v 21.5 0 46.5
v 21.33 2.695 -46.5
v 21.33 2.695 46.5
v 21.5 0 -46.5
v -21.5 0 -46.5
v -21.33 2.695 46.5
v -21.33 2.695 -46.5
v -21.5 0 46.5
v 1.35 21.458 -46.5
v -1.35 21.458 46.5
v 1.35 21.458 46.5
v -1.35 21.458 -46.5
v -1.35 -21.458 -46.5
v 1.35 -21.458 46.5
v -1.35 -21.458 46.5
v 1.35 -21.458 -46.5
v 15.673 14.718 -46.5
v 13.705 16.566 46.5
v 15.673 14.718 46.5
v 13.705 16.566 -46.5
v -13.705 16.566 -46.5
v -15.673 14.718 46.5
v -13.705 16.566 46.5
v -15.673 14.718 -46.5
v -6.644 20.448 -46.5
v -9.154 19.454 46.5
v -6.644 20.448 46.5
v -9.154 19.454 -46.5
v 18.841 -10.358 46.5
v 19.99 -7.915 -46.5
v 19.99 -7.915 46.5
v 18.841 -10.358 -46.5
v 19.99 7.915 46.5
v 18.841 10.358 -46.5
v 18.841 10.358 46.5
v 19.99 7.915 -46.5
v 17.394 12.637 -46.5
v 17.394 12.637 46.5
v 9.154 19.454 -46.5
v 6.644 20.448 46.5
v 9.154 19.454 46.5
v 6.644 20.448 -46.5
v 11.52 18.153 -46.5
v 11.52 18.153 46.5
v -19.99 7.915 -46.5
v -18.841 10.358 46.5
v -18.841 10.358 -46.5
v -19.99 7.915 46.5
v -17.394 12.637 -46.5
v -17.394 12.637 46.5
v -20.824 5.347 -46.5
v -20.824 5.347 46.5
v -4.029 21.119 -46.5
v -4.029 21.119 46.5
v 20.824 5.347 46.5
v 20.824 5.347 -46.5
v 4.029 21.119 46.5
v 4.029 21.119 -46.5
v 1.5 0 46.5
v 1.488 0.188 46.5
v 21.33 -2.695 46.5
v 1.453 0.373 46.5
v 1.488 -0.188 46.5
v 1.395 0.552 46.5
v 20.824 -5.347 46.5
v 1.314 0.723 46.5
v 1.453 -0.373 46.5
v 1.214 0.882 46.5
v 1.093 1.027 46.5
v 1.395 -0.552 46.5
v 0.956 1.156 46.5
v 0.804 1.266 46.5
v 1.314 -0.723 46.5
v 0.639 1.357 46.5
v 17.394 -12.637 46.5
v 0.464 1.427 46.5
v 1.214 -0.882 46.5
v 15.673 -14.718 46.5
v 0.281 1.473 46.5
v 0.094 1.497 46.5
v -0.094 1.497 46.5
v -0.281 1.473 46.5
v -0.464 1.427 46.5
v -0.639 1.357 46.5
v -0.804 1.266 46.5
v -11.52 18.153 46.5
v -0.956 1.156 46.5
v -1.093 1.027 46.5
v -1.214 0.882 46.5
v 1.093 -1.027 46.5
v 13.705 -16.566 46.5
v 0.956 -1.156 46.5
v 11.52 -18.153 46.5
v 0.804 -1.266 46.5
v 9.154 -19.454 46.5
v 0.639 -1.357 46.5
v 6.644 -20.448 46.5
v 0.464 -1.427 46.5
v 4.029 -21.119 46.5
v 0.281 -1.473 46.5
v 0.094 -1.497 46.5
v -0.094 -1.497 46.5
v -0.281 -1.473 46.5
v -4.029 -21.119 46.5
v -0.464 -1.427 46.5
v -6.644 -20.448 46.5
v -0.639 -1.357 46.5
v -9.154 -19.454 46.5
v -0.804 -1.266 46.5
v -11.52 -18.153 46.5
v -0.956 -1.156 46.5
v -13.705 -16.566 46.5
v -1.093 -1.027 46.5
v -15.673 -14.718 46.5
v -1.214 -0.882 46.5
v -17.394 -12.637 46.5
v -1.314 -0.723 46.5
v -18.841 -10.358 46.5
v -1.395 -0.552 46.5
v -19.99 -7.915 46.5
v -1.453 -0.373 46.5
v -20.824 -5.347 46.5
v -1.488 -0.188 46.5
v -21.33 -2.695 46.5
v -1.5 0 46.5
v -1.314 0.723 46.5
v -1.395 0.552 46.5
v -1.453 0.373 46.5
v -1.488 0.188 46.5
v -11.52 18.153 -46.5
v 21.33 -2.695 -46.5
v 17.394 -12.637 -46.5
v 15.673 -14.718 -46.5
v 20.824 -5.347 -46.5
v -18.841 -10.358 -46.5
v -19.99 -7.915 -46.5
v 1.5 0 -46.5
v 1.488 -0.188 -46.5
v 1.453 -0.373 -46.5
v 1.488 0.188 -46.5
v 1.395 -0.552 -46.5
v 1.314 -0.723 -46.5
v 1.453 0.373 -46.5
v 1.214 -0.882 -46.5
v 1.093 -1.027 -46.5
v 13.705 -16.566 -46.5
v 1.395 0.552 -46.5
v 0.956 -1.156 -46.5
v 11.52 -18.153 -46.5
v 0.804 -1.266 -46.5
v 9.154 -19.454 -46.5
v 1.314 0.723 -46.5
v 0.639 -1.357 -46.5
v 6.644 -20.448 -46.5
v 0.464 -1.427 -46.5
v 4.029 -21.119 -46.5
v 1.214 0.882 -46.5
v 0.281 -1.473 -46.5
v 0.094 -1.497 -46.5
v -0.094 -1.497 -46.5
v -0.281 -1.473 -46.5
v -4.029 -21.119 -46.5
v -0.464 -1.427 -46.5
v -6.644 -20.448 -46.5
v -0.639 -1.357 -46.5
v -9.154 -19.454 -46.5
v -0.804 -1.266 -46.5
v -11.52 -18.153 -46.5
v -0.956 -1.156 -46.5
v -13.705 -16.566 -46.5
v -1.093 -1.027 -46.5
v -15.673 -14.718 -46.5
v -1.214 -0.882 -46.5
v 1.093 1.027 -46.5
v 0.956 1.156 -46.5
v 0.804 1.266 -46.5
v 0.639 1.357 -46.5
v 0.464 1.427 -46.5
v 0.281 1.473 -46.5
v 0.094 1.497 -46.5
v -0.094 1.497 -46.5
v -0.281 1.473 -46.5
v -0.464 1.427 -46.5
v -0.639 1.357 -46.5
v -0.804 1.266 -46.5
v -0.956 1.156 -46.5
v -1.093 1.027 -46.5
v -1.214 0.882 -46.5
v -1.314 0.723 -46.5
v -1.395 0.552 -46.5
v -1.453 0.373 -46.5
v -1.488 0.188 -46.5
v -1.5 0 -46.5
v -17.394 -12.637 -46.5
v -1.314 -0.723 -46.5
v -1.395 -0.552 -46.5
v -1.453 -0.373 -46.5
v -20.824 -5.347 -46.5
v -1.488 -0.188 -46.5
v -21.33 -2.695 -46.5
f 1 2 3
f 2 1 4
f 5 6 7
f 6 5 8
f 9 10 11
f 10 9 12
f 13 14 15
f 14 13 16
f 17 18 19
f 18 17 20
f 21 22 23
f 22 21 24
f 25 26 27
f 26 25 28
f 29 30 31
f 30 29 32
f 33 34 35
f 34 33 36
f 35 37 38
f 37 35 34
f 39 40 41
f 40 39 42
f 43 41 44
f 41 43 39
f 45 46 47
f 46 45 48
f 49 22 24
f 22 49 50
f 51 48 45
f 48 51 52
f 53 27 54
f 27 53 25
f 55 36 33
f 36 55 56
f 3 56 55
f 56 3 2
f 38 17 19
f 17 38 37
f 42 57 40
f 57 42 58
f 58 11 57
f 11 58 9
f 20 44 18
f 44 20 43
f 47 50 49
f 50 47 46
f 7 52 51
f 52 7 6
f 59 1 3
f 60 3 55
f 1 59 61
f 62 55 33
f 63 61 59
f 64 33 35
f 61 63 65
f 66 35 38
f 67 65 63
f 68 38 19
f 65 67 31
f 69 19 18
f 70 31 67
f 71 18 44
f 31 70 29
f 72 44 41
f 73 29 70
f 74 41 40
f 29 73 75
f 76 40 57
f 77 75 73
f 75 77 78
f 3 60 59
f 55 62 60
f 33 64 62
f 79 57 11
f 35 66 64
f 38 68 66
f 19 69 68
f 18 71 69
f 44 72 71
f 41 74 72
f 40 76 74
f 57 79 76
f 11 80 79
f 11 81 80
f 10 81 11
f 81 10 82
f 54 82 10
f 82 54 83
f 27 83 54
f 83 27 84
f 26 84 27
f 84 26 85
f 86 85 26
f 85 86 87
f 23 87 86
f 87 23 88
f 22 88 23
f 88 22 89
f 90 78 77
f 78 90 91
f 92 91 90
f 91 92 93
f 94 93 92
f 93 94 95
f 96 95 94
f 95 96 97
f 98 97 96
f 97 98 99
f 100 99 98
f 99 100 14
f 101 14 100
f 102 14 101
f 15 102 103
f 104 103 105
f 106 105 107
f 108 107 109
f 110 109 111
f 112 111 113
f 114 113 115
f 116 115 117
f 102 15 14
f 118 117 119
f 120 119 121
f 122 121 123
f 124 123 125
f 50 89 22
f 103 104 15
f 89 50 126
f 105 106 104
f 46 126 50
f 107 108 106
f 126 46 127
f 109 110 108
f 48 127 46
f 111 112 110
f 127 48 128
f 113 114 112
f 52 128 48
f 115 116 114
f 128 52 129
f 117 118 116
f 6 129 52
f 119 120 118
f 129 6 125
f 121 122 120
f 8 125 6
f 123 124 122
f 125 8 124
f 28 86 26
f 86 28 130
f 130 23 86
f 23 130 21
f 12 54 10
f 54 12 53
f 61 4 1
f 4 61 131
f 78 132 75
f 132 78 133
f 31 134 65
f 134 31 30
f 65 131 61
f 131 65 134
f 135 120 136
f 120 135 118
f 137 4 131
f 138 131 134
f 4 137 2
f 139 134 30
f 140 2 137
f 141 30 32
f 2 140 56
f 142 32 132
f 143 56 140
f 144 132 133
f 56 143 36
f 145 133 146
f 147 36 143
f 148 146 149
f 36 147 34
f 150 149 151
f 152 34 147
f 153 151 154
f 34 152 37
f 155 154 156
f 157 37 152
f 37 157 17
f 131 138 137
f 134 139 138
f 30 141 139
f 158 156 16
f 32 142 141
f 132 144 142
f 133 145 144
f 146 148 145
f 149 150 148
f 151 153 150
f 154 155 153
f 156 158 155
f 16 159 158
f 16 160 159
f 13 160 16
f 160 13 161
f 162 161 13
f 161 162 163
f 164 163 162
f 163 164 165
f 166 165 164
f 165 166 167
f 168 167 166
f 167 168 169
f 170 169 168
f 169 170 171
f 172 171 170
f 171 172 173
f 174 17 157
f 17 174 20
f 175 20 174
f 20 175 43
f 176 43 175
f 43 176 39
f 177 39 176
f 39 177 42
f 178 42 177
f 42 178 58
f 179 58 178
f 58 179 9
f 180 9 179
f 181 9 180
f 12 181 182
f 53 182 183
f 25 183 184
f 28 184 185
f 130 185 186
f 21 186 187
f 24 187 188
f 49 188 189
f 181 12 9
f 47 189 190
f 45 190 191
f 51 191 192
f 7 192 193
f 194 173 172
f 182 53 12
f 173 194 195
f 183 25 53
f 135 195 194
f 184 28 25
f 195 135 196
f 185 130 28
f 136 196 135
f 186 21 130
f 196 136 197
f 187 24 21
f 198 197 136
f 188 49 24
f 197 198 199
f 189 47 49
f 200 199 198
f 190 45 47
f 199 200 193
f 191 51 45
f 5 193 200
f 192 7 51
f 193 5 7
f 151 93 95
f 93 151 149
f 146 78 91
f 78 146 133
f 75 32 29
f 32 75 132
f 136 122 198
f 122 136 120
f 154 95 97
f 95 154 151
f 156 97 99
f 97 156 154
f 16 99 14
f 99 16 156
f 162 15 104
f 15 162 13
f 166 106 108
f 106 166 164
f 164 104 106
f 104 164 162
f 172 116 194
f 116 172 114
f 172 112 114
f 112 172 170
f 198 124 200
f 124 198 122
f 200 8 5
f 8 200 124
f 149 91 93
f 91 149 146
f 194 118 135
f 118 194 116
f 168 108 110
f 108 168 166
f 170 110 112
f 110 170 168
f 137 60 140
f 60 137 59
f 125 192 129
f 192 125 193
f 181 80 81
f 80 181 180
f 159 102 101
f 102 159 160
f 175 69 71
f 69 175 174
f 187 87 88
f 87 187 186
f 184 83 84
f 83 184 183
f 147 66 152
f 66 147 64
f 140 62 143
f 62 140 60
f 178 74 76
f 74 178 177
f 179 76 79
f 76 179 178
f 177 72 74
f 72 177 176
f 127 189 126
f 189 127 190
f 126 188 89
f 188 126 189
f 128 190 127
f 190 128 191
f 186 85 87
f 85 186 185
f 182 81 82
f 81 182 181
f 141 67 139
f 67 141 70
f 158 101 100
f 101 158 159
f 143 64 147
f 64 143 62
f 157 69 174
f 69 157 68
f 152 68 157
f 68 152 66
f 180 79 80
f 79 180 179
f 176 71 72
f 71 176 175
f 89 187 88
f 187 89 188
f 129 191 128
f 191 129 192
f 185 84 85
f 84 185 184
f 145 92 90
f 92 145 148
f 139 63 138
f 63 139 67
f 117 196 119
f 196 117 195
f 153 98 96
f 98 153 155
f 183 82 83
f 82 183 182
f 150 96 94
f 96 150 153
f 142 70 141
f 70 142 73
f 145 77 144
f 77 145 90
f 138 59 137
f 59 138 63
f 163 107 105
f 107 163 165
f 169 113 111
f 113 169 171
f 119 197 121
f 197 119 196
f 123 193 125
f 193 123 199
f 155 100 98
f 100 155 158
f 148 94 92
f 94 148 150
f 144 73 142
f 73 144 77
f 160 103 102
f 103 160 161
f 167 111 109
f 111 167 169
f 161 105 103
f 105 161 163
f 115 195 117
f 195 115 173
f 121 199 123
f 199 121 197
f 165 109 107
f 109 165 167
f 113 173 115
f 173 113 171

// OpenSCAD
$fn = 50;


difference() {
	union() {
		translate(v = [0, 0, -46.5000000000]) {
			cylinder(h = 93, r = 21.5000000000);
		}
	}
	union() {
		translate(v = [0, 0, -100.0000000000]) {
			cylinder(h = 200, r = 1.5000000000);
		}
	}
}
